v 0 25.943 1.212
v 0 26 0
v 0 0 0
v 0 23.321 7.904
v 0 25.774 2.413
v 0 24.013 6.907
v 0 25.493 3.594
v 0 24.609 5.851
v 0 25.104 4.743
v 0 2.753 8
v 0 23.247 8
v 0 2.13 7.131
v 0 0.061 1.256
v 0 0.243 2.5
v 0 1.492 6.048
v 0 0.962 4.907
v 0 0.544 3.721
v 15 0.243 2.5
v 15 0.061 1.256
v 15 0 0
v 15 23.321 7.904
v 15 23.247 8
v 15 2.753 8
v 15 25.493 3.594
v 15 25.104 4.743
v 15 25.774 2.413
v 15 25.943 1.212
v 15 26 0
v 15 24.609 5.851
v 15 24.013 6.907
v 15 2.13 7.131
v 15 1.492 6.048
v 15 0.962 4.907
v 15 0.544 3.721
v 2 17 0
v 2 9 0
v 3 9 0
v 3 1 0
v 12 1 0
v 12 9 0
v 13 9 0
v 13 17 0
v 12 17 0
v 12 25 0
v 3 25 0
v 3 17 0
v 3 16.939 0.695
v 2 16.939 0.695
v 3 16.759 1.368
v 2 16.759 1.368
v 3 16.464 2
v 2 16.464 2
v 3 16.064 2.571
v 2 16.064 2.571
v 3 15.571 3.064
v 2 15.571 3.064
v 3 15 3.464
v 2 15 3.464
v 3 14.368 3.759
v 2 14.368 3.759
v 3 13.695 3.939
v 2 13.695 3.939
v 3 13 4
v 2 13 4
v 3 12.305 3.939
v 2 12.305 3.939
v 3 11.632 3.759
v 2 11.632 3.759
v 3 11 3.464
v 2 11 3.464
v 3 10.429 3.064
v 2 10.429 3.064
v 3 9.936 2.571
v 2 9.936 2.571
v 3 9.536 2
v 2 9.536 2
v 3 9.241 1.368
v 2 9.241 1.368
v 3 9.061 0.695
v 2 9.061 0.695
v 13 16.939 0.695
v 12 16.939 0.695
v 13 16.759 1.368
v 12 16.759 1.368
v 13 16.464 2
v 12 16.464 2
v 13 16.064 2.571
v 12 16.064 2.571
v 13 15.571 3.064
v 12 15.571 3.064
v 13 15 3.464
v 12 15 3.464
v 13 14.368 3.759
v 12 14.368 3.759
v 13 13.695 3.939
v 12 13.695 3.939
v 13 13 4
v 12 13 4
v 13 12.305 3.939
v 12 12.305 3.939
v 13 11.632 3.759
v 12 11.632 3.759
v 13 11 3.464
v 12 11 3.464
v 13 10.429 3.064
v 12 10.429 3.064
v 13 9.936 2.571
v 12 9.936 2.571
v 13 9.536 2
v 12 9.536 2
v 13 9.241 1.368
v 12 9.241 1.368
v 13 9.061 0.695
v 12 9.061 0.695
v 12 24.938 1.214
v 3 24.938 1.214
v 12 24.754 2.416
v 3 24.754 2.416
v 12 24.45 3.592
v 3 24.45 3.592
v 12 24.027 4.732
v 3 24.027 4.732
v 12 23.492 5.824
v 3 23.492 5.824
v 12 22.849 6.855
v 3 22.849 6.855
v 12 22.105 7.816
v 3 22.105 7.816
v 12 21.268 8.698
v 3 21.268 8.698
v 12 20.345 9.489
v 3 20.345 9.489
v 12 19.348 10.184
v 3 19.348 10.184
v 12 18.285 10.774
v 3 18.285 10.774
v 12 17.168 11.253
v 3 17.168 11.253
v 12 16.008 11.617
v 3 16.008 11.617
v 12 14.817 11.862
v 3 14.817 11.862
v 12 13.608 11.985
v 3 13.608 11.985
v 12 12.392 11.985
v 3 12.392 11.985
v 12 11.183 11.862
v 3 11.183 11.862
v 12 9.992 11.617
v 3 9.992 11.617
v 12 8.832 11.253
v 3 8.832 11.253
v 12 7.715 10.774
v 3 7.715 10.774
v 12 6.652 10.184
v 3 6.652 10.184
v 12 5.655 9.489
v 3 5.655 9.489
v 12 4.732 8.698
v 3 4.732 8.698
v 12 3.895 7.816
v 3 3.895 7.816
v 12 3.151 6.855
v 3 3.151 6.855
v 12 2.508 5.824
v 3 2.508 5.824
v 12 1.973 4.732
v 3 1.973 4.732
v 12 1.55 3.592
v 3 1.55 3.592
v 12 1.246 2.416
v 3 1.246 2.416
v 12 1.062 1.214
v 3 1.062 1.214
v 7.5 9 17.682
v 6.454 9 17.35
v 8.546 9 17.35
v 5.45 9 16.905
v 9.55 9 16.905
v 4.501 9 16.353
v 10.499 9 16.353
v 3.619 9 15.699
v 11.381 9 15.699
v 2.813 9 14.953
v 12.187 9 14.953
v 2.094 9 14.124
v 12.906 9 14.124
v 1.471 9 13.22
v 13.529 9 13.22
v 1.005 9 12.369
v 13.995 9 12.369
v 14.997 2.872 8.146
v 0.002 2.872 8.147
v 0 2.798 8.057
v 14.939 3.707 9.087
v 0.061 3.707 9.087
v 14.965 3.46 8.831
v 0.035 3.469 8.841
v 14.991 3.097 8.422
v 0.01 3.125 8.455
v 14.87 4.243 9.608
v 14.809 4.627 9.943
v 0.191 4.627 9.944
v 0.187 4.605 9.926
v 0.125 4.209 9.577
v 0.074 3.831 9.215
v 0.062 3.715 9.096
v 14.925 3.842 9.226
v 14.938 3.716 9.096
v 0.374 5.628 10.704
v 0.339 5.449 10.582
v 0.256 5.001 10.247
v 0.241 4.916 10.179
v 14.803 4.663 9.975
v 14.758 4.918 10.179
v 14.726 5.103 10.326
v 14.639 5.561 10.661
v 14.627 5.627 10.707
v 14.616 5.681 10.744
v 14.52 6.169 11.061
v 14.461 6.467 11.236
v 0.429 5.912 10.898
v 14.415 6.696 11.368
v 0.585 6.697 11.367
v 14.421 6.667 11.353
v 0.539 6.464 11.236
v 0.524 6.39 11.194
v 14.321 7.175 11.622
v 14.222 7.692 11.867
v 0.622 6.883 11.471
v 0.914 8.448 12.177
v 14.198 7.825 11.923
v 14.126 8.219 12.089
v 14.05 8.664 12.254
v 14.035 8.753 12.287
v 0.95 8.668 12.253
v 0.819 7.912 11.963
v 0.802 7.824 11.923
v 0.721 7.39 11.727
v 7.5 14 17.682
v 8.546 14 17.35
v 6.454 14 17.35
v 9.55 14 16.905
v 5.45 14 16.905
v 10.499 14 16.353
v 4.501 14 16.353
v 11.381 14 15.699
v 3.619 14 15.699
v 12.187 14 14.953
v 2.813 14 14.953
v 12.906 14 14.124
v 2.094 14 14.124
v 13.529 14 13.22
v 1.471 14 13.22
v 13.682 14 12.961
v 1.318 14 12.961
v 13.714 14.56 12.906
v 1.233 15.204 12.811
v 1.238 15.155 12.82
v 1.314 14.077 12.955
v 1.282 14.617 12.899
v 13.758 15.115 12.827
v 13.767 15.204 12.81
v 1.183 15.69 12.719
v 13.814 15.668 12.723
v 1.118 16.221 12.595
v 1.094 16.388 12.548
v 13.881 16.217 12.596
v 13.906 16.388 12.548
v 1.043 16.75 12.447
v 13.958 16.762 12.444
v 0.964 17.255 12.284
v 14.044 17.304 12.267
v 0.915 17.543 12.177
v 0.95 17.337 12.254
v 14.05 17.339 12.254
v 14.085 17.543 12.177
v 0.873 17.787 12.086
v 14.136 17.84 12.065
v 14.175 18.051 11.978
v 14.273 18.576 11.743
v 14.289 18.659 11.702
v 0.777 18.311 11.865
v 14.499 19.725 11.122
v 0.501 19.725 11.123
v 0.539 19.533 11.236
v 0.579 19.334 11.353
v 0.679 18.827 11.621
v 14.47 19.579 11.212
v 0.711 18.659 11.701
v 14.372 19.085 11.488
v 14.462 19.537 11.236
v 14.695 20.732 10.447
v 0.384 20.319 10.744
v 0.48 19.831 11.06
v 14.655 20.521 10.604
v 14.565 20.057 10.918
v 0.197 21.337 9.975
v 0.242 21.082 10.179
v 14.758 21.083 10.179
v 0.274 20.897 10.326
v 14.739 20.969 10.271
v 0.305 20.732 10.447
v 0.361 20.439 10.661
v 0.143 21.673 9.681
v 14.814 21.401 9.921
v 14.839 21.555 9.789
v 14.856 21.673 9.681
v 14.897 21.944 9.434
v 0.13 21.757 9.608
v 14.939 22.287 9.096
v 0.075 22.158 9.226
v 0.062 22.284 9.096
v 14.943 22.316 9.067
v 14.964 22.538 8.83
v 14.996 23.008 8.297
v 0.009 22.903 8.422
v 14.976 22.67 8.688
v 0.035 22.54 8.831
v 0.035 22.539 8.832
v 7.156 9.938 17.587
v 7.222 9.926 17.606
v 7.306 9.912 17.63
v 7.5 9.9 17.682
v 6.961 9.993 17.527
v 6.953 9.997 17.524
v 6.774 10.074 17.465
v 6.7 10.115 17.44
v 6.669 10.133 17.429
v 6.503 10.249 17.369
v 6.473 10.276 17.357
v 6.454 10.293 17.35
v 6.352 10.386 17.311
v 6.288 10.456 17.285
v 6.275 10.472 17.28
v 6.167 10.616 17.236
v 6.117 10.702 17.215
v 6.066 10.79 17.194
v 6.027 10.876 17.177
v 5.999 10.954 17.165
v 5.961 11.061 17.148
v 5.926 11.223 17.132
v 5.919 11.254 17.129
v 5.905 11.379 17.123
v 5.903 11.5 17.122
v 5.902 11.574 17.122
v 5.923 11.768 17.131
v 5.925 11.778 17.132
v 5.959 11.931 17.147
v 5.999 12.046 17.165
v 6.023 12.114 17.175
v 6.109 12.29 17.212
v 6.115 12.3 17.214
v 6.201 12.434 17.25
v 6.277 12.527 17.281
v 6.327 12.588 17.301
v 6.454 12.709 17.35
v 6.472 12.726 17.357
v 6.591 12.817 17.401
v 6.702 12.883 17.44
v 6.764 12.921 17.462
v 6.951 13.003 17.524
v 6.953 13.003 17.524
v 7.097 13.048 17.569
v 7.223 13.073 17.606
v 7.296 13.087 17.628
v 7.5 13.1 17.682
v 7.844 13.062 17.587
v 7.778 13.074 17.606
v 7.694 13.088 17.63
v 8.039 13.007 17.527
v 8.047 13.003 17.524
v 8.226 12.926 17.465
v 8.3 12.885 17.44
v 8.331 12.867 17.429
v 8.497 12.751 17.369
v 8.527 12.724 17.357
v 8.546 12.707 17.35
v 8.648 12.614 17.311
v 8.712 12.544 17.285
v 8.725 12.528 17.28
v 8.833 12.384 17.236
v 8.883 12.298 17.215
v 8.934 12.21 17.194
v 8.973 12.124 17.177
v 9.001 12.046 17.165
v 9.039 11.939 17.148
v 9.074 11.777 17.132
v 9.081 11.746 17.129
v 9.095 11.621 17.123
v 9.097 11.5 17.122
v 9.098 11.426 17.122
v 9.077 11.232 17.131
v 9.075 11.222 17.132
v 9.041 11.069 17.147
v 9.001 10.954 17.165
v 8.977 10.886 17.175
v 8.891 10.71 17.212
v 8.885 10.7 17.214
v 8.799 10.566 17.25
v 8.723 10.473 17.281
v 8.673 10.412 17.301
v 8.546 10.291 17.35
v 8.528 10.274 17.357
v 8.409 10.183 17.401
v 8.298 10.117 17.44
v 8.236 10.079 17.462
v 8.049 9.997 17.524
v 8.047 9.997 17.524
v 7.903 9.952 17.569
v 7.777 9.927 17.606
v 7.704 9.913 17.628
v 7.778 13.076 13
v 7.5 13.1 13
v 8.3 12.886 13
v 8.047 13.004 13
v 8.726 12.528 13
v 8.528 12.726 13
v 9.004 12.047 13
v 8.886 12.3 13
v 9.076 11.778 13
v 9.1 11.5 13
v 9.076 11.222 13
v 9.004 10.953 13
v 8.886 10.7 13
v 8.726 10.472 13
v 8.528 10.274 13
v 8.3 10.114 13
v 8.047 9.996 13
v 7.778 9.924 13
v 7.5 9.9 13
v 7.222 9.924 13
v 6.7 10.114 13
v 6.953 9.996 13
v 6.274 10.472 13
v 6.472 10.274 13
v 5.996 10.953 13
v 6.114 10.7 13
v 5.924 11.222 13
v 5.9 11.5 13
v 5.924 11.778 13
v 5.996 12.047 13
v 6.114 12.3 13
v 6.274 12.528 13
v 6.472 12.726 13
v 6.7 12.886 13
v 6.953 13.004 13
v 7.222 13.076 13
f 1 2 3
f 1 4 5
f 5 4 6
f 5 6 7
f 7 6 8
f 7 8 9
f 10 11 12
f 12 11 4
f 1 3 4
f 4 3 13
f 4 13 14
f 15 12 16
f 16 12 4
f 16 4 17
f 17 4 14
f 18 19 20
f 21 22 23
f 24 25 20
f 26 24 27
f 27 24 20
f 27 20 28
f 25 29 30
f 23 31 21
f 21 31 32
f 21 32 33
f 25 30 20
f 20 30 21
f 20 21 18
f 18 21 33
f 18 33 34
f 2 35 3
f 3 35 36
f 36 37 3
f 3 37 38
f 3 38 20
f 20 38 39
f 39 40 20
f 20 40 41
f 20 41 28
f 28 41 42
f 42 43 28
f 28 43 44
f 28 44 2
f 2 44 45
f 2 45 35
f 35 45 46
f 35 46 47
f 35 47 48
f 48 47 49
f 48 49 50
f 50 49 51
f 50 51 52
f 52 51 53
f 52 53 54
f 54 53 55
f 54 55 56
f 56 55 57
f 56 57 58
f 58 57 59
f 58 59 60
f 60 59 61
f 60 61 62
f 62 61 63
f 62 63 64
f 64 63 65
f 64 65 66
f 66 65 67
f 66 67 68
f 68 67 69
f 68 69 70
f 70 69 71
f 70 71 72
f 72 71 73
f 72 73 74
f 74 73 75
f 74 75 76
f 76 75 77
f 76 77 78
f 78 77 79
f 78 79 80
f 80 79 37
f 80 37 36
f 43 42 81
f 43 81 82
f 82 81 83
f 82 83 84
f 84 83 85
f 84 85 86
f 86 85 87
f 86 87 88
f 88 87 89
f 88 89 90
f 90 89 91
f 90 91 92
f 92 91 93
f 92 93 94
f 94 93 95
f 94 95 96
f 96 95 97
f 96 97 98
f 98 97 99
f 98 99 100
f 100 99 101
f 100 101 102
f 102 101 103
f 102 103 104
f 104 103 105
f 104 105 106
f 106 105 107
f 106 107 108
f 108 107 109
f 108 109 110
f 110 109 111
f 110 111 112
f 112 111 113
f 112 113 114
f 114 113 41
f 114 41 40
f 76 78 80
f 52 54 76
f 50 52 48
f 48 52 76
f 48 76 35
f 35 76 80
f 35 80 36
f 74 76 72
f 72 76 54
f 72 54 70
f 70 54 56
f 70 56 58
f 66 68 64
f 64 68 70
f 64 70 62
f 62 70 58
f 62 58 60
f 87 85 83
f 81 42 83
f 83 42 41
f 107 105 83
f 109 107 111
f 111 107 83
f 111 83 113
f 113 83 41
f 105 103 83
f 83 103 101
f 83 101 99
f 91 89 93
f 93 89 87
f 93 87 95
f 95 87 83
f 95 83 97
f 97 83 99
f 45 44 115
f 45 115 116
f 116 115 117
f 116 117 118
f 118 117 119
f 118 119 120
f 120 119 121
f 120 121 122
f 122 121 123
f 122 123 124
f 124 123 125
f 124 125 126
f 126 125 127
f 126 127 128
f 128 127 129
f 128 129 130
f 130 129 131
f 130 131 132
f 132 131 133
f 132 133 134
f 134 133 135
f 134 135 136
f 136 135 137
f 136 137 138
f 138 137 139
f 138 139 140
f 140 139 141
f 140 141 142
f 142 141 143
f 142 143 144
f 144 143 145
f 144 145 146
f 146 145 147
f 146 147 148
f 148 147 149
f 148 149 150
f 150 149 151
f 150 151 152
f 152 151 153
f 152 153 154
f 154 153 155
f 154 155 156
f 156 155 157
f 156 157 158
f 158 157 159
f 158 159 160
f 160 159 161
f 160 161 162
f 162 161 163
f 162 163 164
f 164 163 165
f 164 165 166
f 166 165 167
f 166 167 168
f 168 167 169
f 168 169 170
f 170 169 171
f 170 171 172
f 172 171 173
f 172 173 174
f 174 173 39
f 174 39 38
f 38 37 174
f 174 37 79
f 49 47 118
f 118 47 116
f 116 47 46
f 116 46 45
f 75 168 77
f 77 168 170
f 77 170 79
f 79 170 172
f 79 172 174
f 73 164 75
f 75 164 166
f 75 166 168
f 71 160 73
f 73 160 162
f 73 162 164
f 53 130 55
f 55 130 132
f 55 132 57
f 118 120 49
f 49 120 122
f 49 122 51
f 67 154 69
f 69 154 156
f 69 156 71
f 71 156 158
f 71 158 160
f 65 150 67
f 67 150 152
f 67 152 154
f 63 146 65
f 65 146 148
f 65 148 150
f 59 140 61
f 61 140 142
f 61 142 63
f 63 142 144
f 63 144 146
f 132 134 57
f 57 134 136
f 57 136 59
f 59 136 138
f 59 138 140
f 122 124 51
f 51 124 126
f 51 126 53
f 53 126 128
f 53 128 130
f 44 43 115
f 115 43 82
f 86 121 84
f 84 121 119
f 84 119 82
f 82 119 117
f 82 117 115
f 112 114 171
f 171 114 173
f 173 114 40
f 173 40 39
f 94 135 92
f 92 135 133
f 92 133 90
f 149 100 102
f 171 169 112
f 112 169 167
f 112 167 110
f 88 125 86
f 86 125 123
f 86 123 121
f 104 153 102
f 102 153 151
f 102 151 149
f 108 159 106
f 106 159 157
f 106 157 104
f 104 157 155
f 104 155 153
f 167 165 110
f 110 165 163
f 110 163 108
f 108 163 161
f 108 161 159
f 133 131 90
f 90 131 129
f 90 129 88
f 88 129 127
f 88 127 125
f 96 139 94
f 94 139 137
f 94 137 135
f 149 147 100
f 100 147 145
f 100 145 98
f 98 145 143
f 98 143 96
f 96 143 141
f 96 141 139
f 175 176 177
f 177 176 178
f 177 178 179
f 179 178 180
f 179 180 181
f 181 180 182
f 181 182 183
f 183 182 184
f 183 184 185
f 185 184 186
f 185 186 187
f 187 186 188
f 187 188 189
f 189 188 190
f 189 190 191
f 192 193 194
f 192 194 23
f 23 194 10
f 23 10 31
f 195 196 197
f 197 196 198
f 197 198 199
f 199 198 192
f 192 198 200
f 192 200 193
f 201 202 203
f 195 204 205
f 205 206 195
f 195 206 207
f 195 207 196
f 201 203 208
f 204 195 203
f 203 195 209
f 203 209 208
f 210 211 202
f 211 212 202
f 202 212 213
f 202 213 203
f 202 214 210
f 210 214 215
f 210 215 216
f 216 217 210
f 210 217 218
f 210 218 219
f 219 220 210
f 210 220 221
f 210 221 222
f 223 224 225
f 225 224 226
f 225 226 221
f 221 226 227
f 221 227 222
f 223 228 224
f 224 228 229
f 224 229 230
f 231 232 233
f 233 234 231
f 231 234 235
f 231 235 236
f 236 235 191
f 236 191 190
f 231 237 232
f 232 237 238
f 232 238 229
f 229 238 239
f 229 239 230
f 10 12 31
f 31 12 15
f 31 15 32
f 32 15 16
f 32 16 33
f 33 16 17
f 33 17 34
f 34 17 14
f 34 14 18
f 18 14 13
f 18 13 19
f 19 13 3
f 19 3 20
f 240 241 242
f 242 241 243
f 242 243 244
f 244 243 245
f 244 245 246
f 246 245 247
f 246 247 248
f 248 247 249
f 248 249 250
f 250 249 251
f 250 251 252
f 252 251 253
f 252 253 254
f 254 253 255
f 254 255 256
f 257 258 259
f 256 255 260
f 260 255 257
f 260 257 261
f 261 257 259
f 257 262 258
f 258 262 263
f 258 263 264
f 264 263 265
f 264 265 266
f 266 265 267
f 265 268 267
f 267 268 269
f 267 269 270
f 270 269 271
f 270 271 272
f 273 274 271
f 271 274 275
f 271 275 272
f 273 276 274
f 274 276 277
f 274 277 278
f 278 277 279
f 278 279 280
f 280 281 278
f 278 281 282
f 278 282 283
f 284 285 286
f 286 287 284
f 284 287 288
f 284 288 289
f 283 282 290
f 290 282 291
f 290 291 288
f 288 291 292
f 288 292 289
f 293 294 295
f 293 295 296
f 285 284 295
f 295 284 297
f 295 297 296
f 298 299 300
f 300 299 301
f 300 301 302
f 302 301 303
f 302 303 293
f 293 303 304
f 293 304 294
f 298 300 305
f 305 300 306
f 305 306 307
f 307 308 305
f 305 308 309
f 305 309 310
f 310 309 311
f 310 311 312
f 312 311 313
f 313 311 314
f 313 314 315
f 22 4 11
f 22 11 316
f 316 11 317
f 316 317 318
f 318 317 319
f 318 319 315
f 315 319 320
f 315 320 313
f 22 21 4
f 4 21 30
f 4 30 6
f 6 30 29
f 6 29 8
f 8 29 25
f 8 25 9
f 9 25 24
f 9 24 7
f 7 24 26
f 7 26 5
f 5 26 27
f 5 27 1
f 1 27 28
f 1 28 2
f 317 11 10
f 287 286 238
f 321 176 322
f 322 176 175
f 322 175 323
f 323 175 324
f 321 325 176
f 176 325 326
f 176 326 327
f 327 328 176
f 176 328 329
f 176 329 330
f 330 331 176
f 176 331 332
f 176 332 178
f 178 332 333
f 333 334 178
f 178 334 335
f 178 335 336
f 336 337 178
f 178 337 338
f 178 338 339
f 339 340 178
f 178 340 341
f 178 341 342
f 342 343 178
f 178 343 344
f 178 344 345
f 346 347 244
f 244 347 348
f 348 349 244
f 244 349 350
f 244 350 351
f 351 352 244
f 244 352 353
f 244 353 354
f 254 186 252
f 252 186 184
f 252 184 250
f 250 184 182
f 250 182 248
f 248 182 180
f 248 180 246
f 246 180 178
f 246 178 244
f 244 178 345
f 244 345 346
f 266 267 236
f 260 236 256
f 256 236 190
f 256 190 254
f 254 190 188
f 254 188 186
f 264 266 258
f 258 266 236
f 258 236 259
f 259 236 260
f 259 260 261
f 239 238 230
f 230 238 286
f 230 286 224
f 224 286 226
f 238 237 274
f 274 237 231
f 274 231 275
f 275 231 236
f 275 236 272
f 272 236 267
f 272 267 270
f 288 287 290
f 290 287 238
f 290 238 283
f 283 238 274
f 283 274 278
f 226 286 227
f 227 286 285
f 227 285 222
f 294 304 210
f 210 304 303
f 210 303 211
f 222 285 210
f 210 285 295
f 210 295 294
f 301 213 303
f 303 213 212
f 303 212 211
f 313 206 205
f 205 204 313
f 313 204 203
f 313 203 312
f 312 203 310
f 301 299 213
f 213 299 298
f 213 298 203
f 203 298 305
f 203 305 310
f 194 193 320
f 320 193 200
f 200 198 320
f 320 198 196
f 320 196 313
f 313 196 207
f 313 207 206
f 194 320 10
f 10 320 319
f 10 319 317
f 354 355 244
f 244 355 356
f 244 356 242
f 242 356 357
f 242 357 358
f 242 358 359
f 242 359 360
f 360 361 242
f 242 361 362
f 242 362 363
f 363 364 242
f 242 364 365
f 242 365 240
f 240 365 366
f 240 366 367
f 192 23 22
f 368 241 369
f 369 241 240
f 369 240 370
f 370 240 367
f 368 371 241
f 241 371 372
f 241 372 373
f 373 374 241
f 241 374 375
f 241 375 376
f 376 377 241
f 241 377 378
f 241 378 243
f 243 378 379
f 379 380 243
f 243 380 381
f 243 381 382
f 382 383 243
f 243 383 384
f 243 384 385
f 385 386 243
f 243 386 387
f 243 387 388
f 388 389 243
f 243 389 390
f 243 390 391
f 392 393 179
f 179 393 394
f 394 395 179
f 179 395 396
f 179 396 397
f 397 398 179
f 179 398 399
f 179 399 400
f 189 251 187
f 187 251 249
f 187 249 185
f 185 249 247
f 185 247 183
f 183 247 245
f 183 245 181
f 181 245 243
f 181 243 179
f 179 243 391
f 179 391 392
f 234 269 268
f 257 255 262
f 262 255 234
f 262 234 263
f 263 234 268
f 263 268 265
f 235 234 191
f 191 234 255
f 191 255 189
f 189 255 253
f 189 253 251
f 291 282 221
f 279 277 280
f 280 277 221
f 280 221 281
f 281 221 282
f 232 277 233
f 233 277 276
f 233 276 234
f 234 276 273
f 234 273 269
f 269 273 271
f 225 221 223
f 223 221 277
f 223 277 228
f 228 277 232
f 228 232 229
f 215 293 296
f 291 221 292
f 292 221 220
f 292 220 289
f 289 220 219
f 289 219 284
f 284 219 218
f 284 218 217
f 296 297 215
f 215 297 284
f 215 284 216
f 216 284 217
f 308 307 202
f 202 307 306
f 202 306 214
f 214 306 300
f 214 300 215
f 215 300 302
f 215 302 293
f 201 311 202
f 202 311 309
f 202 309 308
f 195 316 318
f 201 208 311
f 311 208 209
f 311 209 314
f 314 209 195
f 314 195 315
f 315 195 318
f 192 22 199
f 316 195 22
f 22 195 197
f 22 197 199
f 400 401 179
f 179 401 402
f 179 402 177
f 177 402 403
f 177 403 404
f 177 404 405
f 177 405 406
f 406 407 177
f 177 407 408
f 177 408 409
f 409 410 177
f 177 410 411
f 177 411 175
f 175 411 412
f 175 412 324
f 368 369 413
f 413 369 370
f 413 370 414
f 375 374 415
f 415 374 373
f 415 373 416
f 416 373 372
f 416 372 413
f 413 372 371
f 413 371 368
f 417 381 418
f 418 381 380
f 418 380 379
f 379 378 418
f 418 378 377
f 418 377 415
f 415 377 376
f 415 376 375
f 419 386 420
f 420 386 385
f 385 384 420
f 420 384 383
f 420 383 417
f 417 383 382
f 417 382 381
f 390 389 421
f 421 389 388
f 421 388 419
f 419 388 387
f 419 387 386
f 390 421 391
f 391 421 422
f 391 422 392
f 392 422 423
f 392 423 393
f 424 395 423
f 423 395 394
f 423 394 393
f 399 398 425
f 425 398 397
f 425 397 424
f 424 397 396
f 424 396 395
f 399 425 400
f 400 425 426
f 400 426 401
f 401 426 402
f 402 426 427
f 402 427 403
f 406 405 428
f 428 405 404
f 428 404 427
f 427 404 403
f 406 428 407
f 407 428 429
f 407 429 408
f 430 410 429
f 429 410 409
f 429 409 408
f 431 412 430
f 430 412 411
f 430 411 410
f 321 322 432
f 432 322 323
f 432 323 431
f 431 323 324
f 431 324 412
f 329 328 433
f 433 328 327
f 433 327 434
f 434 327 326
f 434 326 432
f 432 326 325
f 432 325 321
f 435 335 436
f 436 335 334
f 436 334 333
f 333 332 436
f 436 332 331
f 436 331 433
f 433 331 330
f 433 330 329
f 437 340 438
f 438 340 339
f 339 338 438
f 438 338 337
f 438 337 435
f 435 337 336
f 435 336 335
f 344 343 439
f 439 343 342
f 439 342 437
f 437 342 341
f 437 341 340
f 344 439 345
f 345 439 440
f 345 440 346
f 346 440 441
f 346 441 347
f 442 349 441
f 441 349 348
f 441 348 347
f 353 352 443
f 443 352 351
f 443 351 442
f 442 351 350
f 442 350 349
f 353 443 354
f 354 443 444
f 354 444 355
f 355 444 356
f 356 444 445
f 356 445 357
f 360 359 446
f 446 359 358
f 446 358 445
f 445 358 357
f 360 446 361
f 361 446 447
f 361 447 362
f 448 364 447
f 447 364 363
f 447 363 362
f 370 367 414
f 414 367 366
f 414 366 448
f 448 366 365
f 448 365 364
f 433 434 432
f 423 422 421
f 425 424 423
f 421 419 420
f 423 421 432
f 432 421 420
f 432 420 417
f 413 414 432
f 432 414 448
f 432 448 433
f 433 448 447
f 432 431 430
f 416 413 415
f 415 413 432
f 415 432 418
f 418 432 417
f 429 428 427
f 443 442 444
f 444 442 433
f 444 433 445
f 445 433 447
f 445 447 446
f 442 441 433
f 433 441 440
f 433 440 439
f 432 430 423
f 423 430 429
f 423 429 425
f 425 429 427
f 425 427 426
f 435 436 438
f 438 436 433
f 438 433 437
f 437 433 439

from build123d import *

# Parameters (mm, degrees)
SKETCH1_W           = 15
SKETCH1_H           = 26
BOSS_EXTRUDE1_DEPTH = 18
SKETCH2_R           = 4
CUT_EXTRUDE1_DEPTH  = 11
SKETCH3_R           = 12
CUT_EXTRUDE2_DEPTH  = 9
CUT_EXTRUDE3_START  = -15
SKETCH4_W           = 45.765044891
SKETCH4_H           = 35.646606974
CUT_EXTRUDE3_DEPTH  = 15
FILLET1_R           = 10
SKETCH5_R           = 1.6
CUT_EXTRUDE4_DEPTH  = 5


with BuildPart() as part:
    # Sketch1 → Boss-Extrude1 (new body)
    with BuildSketch(Plane.XY):
        with Locations((7.5, 13)):
            Rectangle(SKETCH1_W, SKETCH1_H)
    extrude(amount=BOSS_EXTRUDE1_DEPTH)

    # Sketch2 → Cut-Extrude1 (cut)
    with BuildSketch(Plane(origin=(13, 0, 0), x_dir=(0, 0, -1), z_dir=(1, 0, 0))):
        with Locations((0, 13)):
            Circle(SKETCH2_R)
    extrude(amount=-CUT_EXTRUDE1_DEPTH, mode=Mode.SUBTRACT)

    # Sketch3 → Cut-Extrude2 (cut)
    with BuildSketch(Plane(origin=(12, 0, 0), x_dir=(0, 0, -1), z_dir=(1, 0, 0))):
        with Locations((0, 13)):
            Circle(SKETCH3_R)
    extrude(amount=-CUT_EXTRUDE2_DEPTH, mode=Mode.SUBTRACT)

    # Sketch4 → Cut-Extrude3 (cut)
    with BuildSketch(Plane(origin=(15, 0, 0), x_dir=(0, 0, -1), z_dir=(1, 0, 0)).offset(CUT_EXTRUDE3_START)):
        with Locations((-7.490754188, 14.288489829)):
            Rectangle(SKETCH4_W, SKETCH4_H)
        with BuildLine():
            Line((-20.423780573, 14), (-12.961481397, 14))
            ThreePointArc((-12.961481397, 14), (12.909776733, 14.528942348), (-12.369316877, 9))
            Line((-12.369316877, 9), (-20.423780573, 9))
            Line((-20.423780573, 9), (-20.423780573, 14))
        make_face(mode=Mode.SUBTRACT)
    extrude(amount=CUT_EXTRUDE3_DEPTH, mode=Mode.SUBTRACT)

    # Fillet1
    # the kernel refuses this fillet: 10 mm, written as the material it takes off along each edge
    with BuildSketch(Plane(origin=(15, -16, 18), x_dir=(0, 0, -1), z_dir=(0, 1, 0)), Plane(origin=(0, 39, 18), x_dir=(0, 0, -1), z_dir=(0, -1, 0))) as fillet1_piece_1:
        with BuildLine():
            CenterArc((FILLET1_R, FILLET1_R), FILLET1_R, 180, 90)
            Line((0, FILLET1_R), (0, 0))
            Line((0, 0), (FILLET1_R, 0))
        make_face()
    extrude(amount=55, mode=Mode.SUBTRACT)

    # Sketch5 → Cut-Extrude4 (cut)
    with BuildSketch(Plane.XY.offset(18)):
        with Locations((7.5, 11.5)):
            Circle(SKETCH5_R)
    extrude(amount=-CUT_EXTRUDE4_DEPTH, mode=Mode.SUBTRACT)


solid = part.part
